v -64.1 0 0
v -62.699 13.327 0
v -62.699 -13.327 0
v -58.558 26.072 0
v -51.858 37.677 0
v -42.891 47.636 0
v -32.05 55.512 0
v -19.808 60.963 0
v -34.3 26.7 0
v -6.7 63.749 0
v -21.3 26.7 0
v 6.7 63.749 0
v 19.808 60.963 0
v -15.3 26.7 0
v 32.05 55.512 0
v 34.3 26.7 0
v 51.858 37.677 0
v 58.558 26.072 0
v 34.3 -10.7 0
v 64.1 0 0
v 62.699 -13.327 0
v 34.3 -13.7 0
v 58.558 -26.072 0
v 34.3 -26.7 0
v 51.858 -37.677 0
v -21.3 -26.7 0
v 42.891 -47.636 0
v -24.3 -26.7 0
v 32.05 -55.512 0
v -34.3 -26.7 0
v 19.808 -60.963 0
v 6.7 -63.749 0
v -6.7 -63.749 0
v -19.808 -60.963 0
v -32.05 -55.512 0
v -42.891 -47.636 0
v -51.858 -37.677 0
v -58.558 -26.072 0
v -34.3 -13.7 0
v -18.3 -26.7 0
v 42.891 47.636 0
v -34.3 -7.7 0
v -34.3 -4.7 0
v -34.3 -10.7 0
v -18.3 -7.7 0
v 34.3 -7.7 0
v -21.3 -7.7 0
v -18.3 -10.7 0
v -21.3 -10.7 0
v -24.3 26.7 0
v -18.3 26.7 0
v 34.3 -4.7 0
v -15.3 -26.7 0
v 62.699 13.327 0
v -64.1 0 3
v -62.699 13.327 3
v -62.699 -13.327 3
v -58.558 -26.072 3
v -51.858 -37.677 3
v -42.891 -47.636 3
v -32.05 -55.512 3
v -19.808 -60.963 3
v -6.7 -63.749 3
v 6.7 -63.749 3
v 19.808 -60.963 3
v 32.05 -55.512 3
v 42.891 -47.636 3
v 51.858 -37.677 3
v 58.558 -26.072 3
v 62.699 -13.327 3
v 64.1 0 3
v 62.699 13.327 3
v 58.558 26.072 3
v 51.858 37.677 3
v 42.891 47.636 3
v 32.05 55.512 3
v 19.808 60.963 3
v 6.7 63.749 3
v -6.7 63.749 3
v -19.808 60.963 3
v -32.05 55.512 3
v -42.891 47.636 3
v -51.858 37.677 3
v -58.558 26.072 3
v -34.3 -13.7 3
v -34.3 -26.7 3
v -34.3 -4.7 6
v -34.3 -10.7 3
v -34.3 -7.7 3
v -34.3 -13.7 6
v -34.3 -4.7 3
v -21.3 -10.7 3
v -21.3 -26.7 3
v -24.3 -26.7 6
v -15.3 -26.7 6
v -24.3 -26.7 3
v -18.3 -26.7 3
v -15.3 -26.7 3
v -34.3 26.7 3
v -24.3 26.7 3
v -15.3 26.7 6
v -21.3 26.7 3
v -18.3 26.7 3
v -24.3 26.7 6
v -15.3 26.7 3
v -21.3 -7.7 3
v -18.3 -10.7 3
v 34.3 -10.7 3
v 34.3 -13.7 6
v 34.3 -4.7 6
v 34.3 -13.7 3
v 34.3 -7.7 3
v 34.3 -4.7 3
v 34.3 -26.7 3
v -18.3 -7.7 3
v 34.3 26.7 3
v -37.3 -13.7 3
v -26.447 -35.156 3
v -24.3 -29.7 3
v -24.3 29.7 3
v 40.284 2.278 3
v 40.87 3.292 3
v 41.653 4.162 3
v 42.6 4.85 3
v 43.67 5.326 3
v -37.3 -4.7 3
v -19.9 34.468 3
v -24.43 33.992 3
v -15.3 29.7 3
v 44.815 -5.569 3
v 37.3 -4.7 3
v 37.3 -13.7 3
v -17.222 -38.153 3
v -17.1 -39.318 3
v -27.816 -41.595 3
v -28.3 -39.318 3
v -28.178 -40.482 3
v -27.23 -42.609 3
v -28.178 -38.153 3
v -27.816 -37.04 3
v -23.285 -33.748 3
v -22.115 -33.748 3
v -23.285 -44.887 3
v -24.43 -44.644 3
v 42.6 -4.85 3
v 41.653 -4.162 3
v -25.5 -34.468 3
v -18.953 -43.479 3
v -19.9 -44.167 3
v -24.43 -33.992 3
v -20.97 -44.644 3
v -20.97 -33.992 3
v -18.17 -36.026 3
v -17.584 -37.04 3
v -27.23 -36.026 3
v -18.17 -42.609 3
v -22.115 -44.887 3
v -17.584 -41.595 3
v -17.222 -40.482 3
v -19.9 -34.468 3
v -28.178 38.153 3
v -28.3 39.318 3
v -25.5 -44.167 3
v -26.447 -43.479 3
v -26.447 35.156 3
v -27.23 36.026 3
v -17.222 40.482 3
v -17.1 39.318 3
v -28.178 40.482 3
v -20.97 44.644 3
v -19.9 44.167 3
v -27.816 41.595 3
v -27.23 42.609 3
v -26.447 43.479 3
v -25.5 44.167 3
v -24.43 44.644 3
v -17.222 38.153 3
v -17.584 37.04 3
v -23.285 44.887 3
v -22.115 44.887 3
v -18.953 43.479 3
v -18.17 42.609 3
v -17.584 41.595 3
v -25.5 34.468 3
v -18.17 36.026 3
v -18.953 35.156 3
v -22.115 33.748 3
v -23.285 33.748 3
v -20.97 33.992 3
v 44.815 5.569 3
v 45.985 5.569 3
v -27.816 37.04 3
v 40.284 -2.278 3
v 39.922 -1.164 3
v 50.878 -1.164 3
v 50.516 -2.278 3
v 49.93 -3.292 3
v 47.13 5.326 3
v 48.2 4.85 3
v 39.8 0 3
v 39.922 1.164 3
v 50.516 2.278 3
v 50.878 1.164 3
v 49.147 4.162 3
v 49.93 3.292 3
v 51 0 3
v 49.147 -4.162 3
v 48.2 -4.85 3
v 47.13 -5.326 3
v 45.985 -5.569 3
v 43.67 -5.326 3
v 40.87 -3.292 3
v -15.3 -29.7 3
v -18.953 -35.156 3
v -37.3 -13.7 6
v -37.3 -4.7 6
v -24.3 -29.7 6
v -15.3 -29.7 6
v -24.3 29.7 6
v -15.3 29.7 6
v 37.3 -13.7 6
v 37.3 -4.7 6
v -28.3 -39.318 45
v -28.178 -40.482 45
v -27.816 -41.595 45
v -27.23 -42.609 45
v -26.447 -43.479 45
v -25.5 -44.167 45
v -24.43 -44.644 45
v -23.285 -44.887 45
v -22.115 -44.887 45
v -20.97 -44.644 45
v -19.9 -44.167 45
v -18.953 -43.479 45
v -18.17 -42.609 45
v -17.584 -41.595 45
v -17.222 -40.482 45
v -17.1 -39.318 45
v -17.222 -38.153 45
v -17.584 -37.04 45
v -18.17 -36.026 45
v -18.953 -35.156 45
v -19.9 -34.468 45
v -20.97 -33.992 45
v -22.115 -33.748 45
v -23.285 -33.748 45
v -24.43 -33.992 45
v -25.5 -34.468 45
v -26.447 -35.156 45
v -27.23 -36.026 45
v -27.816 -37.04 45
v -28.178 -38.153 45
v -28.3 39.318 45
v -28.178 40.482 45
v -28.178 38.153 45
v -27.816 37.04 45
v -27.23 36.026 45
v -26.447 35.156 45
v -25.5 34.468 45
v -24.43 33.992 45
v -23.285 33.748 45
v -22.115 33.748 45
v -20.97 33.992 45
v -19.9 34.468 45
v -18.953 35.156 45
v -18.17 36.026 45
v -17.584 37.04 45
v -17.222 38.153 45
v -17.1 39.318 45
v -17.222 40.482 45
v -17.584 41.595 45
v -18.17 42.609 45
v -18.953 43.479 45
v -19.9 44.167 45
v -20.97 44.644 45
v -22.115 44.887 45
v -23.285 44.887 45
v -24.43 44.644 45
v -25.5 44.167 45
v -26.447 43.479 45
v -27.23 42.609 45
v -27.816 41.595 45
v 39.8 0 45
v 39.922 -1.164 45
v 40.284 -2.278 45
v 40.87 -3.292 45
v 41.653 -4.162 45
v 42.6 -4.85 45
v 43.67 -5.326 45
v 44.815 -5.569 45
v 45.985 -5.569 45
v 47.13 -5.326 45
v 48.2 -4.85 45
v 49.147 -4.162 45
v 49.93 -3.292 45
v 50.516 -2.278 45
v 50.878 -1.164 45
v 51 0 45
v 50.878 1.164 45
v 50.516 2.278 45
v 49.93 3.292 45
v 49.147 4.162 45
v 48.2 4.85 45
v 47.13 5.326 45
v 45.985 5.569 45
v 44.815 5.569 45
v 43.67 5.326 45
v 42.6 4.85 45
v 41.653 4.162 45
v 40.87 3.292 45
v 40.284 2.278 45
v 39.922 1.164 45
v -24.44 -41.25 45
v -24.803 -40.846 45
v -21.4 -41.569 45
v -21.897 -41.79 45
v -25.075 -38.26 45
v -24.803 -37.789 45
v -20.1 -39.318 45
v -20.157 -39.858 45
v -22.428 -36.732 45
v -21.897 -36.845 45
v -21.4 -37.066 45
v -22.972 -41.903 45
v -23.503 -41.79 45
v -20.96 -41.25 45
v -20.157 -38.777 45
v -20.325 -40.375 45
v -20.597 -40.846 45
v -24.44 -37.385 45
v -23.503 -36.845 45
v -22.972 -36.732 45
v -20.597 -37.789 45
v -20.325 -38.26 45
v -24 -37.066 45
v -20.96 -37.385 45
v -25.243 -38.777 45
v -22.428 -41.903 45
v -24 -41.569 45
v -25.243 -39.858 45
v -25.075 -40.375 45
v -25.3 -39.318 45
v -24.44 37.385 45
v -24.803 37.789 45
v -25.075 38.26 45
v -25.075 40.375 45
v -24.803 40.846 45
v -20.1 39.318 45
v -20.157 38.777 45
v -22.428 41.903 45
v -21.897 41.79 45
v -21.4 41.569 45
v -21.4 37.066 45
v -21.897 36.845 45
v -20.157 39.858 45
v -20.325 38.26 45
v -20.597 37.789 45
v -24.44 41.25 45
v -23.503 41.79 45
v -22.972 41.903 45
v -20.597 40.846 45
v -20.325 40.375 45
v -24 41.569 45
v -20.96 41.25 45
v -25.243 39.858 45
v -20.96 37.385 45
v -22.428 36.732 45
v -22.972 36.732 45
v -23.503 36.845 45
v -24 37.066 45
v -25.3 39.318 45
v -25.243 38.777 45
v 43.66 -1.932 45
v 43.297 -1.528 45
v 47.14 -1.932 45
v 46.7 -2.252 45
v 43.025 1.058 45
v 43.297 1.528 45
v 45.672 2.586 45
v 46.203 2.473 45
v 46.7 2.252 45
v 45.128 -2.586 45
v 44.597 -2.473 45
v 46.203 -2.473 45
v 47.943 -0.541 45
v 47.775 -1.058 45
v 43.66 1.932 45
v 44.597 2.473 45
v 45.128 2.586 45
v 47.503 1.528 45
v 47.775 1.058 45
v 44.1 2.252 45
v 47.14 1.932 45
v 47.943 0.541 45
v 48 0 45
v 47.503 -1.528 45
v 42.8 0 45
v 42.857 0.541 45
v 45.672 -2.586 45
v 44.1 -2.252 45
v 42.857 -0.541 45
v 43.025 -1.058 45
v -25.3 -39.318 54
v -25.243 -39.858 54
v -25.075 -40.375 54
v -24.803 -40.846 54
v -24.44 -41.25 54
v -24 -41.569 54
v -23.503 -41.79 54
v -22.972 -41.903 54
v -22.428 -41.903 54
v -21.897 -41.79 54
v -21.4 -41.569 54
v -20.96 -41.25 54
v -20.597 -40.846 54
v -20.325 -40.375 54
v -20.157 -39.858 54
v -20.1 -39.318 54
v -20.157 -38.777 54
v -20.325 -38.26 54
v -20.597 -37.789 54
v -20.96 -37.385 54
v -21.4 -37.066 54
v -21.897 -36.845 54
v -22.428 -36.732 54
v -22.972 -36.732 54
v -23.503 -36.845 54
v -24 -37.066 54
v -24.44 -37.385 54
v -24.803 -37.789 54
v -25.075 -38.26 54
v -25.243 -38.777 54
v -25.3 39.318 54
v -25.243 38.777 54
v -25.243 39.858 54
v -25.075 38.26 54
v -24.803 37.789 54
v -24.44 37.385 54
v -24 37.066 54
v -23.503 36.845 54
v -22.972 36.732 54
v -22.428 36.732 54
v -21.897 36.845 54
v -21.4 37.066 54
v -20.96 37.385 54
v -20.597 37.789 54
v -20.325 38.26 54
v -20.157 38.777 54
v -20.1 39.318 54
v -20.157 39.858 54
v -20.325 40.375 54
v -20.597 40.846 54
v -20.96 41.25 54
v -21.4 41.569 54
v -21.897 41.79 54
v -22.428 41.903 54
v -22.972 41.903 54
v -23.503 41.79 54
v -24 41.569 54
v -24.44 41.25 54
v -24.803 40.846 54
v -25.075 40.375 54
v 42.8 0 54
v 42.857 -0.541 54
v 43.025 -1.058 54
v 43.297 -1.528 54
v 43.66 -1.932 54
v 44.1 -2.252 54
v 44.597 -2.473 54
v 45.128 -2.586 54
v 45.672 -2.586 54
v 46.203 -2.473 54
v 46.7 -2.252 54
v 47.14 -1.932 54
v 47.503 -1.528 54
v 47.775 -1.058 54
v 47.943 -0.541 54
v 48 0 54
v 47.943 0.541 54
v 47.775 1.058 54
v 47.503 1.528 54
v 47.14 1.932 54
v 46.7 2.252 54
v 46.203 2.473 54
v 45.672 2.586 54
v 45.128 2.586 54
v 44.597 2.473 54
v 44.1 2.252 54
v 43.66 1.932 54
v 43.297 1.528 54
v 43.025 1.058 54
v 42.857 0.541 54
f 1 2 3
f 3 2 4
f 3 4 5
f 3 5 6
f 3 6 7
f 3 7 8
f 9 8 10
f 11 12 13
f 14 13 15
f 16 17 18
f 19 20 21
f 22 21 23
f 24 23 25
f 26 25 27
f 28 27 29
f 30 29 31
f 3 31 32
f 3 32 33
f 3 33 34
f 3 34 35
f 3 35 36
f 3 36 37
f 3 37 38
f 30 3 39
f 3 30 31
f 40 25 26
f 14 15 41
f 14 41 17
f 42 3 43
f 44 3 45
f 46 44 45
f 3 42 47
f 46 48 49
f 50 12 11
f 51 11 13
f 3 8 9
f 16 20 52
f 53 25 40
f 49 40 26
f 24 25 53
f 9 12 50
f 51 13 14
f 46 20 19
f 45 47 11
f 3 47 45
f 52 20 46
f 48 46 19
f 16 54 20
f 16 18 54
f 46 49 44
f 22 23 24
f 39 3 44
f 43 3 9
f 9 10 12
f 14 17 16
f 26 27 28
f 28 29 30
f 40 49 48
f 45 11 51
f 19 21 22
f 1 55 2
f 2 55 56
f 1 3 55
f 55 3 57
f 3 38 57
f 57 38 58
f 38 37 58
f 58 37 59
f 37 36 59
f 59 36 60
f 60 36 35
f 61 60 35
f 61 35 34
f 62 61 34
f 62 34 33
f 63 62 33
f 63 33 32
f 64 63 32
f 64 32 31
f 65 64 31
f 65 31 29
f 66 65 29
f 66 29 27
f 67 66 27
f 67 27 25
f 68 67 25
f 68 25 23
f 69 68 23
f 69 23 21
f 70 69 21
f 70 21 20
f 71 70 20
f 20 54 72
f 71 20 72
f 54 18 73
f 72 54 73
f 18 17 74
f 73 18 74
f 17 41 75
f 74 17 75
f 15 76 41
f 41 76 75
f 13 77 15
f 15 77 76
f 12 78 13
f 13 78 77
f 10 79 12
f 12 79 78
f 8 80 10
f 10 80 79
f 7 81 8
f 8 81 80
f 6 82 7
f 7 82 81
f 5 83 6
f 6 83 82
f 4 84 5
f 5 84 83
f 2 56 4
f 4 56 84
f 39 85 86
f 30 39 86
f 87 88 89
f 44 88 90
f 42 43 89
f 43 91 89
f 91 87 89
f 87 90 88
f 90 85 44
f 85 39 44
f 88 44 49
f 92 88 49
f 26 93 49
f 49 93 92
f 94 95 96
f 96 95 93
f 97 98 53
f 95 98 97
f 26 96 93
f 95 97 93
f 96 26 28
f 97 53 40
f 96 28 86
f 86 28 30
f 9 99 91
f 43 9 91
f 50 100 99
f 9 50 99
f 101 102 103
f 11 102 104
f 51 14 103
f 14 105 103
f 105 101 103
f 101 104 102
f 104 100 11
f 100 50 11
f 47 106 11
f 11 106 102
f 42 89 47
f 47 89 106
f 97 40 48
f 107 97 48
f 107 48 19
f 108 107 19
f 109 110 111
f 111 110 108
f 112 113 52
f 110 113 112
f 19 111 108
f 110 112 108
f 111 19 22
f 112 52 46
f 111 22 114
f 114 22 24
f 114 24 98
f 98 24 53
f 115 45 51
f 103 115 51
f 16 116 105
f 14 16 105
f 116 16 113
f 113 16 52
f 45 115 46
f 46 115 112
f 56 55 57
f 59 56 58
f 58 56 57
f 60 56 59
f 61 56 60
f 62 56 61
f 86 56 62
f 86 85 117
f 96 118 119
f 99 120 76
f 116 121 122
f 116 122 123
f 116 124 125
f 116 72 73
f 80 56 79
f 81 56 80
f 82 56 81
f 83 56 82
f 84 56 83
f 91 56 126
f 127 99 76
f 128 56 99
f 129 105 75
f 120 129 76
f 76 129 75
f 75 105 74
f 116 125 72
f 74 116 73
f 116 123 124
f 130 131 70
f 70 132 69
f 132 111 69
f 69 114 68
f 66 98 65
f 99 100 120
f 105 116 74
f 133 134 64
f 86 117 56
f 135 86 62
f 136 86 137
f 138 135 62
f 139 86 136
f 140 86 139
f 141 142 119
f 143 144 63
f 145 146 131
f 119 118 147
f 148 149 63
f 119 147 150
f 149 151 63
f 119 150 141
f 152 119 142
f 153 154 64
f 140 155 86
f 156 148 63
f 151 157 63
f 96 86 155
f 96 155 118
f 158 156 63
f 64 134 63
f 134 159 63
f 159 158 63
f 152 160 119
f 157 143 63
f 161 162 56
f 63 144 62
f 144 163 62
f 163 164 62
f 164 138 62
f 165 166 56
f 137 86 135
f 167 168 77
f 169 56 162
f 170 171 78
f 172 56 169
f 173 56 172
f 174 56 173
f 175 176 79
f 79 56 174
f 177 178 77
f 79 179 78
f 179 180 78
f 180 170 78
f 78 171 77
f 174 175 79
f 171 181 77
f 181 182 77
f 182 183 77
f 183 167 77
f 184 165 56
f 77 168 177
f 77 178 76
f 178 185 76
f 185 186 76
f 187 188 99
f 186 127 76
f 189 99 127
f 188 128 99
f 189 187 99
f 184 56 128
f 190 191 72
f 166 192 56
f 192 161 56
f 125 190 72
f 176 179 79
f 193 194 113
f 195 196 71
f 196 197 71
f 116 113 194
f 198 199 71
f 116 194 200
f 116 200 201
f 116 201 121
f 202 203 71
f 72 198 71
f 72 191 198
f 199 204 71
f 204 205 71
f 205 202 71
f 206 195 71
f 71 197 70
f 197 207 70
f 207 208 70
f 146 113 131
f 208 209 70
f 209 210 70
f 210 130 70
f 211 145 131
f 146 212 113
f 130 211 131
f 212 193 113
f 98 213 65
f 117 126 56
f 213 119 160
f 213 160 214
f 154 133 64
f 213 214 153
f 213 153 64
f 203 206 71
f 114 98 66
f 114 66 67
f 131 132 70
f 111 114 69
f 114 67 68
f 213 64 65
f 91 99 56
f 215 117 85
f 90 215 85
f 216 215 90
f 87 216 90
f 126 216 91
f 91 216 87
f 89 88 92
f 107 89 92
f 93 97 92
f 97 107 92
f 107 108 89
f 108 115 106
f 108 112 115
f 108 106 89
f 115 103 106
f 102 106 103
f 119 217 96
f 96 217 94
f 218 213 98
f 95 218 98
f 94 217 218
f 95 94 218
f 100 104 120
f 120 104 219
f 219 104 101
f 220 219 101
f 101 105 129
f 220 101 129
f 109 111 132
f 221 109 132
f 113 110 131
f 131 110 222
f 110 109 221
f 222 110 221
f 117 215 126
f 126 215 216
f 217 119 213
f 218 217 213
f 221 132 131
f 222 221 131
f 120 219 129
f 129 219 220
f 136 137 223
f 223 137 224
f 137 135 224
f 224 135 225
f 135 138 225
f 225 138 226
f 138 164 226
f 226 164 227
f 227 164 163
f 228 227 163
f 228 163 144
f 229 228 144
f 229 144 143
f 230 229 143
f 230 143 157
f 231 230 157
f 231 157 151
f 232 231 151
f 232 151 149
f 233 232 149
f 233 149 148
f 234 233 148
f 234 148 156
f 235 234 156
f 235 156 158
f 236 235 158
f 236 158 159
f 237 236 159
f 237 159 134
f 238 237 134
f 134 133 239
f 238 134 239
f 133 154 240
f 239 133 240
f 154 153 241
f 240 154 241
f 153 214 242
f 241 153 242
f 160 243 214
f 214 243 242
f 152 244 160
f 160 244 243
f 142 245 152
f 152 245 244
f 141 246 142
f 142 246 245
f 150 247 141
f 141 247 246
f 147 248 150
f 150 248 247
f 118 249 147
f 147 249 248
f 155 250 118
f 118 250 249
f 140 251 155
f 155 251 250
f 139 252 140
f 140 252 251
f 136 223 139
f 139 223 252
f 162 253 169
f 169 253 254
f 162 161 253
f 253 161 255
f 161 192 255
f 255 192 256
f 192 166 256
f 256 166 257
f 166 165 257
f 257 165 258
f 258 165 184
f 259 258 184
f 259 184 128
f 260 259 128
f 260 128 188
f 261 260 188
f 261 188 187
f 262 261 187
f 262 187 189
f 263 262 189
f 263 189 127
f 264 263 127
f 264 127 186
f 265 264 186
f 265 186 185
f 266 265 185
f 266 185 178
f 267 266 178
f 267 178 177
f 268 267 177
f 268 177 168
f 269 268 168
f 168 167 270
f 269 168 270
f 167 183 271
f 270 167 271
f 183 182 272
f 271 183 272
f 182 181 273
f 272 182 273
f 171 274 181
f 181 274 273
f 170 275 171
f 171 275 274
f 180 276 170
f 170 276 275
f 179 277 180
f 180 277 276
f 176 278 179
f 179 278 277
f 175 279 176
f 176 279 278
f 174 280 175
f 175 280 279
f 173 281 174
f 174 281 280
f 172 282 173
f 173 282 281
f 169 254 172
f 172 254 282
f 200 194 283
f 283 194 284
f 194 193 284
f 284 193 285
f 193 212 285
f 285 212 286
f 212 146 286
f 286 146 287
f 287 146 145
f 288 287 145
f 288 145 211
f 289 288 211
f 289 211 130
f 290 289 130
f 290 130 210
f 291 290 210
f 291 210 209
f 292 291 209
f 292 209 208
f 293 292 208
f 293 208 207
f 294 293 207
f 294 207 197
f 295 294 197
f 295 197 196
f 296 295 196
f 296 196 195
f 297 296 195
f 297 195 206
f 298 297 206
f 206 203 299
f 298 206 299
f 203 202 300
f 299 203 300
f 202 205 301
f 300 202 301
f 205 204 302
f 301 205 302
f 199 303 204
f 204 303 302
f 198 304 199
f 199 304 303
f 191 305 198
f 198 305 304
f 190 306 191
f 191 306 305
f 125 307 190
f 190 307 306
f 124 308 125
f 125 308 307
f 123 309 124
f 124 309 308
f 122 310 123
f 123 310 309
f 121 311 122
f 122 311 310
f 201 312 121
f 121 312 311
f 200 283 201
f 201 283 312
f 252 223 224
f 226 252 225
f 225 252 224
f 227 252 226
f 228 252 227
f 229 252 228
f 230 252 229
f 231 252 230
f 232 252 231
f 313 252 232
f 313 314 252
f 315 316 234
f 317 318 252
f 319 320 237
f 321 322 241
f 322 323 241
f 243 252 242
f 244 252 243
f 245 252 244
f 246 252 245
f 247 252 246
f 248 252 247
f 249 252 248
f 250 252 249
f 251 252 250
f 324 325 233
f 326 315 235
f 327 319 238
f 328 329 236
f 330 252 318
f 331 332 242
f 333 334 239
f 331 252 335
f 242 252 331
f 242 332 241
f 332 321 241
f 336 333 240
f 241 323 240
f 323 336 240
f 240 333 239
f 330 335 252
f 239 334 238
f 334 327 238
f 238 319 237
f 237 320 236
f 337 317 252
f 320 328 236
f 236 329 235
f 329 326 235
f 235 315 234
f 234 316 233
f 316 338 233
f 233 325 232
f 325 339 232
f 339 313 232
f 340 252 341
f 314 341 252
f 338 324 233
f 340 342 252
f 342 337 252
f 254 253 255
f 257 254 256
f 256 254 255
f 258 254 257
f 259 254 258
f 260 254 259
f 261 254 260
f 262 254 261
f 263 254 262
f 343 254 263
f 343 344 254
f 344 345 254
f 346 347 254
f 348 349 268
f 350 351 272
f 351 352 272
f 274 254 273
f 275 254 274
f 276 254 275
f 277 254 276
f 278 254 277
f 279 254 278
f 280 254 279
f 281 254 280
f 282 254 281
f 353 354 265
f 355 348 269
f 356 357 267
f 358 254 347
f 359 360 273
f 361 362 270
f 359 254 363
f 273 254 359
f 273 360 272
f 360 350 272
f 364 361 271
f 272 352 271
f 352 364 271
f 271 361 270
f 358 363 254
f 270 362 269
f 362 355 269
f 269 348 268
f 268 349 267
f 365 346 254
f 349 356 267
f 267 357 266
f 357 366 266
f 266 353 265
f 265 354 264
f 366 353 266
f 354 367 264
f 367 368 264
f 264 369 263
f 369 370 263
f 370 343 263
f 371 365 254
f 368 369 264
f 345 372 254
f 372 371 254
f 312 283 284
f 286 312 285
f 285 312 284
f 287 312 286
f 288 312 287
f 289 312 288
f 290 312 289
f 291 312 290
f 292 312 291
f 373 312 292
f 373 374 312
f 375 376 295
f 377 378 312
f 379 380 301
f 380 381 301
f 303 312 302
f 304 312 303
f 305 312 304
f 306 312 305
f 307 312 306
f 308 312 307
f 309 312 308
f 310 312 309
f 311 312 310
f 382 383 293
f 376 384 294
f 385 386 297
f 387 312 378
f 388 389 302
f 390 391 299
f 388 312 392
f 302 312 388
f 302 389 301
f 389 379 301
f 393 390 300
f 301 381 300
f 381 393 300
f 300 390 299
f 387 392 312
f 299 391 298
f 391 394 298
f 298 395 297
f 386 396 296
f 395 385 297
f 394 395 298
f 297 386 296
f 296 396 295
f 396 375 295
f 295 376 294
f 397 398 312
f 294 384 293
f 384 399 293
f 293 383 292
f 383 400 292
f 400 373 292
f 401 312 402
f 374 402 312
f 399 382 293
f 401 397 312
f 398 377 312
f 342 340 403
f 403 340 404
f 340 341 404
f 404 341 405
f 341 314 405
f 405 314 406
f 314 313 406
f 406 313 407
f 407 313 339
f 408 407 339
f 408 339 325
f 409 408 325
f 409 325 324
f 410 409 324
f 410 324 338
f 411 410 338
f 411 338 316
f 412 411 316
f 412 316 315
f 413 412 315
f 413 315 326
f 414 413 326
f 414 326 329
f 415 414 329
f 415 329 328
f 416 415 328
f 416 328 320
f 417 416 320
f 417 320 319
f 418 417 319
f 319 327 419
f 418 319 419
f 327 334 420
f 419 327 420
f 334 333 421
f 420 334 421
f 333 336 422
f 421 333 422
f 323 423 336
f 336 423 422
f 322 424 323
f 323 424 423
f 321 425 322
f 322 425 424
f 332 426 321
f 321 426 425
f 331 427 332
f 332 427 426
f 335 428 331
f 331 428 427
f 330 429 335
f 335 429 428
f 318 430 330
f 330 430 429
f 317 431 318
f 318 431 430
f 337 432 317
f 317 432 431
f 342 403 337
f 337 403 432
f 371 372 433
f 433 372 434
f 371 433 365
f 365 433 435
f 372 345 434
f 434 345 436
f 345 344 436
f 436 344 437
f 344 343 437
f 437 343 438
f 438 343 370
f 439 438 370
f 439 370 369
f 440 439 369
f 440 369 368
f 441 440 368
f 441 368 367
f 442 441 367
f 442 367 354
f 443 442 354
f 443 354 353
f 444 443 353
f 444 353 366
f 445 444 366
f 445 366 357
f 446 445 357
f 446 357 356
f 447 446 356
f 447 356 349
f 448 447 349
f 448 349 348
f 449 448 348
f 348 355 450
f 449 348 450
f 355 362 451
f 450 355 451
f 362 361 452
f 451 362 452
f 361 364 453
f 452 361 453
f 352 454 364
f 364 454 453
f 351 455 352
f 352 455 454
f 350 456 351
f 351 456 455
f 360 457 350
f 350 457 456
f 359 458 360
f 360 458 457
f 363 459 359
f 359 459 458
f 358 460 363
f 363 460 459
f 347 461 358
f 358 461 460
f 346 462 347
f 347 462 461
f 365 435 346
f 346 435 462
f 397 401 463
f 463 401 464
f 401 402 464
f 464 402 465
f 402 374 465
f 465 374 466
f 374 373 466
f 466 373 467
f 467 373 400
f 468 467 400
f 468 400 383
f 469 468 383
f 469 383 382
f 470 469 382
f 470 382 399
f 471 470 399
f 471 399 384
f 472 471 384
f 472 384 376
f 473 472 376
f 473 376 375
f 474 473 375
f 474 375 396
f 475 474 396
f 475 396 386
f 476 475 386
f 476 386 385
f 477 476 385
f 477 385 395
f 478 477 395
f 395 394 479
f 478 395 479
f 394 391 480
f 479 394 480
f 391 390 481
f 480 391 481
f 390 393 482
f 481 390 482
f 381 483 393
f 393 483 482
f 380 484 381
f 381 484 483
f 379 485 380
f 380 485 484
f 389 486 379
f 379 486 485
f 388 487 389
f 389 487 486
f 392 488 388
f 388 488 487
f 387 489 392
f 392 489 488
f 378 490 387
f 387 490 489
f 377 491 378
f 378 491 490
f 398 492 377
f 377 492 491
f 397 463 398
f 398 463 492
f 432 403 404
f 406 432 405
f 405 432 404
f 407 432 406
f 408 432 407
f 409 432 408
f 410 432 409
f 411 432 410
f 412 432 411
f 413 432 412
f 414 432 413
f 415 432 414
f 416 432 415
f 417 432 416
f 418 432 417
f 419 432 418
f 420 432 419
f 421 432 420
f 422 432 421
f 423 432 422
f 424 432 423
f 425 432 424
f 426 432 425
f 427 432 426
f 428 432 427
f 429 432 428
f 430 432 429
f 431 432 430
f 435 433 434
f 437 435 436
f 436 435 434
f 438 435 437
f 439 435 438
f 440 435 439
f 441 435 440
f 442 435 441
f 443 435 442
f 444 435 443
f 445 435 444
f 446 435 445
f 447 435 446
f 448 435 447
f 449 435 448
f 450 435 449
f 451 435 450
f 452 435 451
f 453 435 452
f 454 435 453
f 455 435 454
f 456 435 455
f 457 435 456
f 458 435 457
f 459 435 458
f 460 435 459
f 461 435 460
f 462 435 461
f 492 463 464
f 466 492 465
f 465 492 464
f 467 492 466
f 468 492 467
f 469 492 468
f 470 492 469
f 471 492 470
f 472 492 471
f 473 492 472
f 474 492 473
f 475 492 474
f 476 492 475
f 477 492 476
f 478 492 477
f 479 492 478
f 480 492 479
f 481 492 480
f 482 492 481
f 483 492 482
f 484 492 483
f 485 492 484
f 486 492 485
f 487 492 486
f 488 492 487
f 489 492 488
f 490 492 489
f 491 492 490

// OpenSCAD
// file: arduino_dock.scad
module a_dock() {
    width = 53.4;
    length = 68.6;
    thickness = 3;
    peg_length = 3*thickness;
    height = 3;
    w_offset = 19;
    l_offset = 16;

    translate([0, w_offset, 0]){
        cube([length+2*thickness, thickness, thickness]);
        translate([0,-thickness,0]){
            cube([thickness, peg_length, height+thickness]);
        }
        translate([length+thickness, -thickness, 0]){
            cube([thickness, peg_length, height+thickness]);
        }
    }

    translate([l_offset, 0, 0]){
        cube([thickness, width+2*thickness, thickness]);
        translate([-thickness,0,0]){
            cube([peg_length, thickness, height+thickness]);
        }
        translate([-thickness, width+thickness, 0]){
            cube([peg_length, thickness, height+thickness]);
        }
    }
}
// main file
include <arduino_dock.scad>;

a_width = 53.4;
a_length = 68.6;
s_depth = 15.8;
slop = 5;
offset = 0.1;
thickness = 3;

s_l = 24.5;
s_w = 12.4;
wall = 4;
depth = 6;
sc_l = s_l + 2*wall;
sc_w = s_w + 2*wall;
off = 0.1;

sheath_height = 45;
male_height = thickness*3;
male_radius = 2.6;

servo_distance = 0.5*a_length + slop + s_depth;
p_radius = servo_distance + slop + wall;
h_radius = 0.5*a_width;
male_distance = p_radius - 0.5*(p_radius - h_radius);

module male() {
	cylinder(r=male_radius, h=male_height, $fs=0.3);
}

module sheath() {
	cylinder(r=male_radius+thickness, h=sheath_height, $fs=0.3);
}

module pillar() {
	translate([male_distance, 0,0]){
		sheath();
		translate([0,0,sheath_height]){
			male();
		}
	}
}
pillar();
rotate(120, [0,0,1]){pillar();}
rotate(240, [0,0,1]){pillar();}

servo_distance = 0.5*a_length + slop + s_depth;
p_radius = servo_distance + slop + wall;
h_radius = 0.5*a_width;
male_distance = p_radius - 0.5*(p_radius - h_radius);

difference(){
	cylinder(r=p_radius, h=thickness, $fs=0.5);
	translate([-0.5*a_length, -0.5*a_width, -offset]){
		cube([a_length, a_width, thickness+2*offset]);
	}
}
translate([-0.5*a_length-thickness, -0.5*a_width-thickness, 0]){
	a_dock();
}
